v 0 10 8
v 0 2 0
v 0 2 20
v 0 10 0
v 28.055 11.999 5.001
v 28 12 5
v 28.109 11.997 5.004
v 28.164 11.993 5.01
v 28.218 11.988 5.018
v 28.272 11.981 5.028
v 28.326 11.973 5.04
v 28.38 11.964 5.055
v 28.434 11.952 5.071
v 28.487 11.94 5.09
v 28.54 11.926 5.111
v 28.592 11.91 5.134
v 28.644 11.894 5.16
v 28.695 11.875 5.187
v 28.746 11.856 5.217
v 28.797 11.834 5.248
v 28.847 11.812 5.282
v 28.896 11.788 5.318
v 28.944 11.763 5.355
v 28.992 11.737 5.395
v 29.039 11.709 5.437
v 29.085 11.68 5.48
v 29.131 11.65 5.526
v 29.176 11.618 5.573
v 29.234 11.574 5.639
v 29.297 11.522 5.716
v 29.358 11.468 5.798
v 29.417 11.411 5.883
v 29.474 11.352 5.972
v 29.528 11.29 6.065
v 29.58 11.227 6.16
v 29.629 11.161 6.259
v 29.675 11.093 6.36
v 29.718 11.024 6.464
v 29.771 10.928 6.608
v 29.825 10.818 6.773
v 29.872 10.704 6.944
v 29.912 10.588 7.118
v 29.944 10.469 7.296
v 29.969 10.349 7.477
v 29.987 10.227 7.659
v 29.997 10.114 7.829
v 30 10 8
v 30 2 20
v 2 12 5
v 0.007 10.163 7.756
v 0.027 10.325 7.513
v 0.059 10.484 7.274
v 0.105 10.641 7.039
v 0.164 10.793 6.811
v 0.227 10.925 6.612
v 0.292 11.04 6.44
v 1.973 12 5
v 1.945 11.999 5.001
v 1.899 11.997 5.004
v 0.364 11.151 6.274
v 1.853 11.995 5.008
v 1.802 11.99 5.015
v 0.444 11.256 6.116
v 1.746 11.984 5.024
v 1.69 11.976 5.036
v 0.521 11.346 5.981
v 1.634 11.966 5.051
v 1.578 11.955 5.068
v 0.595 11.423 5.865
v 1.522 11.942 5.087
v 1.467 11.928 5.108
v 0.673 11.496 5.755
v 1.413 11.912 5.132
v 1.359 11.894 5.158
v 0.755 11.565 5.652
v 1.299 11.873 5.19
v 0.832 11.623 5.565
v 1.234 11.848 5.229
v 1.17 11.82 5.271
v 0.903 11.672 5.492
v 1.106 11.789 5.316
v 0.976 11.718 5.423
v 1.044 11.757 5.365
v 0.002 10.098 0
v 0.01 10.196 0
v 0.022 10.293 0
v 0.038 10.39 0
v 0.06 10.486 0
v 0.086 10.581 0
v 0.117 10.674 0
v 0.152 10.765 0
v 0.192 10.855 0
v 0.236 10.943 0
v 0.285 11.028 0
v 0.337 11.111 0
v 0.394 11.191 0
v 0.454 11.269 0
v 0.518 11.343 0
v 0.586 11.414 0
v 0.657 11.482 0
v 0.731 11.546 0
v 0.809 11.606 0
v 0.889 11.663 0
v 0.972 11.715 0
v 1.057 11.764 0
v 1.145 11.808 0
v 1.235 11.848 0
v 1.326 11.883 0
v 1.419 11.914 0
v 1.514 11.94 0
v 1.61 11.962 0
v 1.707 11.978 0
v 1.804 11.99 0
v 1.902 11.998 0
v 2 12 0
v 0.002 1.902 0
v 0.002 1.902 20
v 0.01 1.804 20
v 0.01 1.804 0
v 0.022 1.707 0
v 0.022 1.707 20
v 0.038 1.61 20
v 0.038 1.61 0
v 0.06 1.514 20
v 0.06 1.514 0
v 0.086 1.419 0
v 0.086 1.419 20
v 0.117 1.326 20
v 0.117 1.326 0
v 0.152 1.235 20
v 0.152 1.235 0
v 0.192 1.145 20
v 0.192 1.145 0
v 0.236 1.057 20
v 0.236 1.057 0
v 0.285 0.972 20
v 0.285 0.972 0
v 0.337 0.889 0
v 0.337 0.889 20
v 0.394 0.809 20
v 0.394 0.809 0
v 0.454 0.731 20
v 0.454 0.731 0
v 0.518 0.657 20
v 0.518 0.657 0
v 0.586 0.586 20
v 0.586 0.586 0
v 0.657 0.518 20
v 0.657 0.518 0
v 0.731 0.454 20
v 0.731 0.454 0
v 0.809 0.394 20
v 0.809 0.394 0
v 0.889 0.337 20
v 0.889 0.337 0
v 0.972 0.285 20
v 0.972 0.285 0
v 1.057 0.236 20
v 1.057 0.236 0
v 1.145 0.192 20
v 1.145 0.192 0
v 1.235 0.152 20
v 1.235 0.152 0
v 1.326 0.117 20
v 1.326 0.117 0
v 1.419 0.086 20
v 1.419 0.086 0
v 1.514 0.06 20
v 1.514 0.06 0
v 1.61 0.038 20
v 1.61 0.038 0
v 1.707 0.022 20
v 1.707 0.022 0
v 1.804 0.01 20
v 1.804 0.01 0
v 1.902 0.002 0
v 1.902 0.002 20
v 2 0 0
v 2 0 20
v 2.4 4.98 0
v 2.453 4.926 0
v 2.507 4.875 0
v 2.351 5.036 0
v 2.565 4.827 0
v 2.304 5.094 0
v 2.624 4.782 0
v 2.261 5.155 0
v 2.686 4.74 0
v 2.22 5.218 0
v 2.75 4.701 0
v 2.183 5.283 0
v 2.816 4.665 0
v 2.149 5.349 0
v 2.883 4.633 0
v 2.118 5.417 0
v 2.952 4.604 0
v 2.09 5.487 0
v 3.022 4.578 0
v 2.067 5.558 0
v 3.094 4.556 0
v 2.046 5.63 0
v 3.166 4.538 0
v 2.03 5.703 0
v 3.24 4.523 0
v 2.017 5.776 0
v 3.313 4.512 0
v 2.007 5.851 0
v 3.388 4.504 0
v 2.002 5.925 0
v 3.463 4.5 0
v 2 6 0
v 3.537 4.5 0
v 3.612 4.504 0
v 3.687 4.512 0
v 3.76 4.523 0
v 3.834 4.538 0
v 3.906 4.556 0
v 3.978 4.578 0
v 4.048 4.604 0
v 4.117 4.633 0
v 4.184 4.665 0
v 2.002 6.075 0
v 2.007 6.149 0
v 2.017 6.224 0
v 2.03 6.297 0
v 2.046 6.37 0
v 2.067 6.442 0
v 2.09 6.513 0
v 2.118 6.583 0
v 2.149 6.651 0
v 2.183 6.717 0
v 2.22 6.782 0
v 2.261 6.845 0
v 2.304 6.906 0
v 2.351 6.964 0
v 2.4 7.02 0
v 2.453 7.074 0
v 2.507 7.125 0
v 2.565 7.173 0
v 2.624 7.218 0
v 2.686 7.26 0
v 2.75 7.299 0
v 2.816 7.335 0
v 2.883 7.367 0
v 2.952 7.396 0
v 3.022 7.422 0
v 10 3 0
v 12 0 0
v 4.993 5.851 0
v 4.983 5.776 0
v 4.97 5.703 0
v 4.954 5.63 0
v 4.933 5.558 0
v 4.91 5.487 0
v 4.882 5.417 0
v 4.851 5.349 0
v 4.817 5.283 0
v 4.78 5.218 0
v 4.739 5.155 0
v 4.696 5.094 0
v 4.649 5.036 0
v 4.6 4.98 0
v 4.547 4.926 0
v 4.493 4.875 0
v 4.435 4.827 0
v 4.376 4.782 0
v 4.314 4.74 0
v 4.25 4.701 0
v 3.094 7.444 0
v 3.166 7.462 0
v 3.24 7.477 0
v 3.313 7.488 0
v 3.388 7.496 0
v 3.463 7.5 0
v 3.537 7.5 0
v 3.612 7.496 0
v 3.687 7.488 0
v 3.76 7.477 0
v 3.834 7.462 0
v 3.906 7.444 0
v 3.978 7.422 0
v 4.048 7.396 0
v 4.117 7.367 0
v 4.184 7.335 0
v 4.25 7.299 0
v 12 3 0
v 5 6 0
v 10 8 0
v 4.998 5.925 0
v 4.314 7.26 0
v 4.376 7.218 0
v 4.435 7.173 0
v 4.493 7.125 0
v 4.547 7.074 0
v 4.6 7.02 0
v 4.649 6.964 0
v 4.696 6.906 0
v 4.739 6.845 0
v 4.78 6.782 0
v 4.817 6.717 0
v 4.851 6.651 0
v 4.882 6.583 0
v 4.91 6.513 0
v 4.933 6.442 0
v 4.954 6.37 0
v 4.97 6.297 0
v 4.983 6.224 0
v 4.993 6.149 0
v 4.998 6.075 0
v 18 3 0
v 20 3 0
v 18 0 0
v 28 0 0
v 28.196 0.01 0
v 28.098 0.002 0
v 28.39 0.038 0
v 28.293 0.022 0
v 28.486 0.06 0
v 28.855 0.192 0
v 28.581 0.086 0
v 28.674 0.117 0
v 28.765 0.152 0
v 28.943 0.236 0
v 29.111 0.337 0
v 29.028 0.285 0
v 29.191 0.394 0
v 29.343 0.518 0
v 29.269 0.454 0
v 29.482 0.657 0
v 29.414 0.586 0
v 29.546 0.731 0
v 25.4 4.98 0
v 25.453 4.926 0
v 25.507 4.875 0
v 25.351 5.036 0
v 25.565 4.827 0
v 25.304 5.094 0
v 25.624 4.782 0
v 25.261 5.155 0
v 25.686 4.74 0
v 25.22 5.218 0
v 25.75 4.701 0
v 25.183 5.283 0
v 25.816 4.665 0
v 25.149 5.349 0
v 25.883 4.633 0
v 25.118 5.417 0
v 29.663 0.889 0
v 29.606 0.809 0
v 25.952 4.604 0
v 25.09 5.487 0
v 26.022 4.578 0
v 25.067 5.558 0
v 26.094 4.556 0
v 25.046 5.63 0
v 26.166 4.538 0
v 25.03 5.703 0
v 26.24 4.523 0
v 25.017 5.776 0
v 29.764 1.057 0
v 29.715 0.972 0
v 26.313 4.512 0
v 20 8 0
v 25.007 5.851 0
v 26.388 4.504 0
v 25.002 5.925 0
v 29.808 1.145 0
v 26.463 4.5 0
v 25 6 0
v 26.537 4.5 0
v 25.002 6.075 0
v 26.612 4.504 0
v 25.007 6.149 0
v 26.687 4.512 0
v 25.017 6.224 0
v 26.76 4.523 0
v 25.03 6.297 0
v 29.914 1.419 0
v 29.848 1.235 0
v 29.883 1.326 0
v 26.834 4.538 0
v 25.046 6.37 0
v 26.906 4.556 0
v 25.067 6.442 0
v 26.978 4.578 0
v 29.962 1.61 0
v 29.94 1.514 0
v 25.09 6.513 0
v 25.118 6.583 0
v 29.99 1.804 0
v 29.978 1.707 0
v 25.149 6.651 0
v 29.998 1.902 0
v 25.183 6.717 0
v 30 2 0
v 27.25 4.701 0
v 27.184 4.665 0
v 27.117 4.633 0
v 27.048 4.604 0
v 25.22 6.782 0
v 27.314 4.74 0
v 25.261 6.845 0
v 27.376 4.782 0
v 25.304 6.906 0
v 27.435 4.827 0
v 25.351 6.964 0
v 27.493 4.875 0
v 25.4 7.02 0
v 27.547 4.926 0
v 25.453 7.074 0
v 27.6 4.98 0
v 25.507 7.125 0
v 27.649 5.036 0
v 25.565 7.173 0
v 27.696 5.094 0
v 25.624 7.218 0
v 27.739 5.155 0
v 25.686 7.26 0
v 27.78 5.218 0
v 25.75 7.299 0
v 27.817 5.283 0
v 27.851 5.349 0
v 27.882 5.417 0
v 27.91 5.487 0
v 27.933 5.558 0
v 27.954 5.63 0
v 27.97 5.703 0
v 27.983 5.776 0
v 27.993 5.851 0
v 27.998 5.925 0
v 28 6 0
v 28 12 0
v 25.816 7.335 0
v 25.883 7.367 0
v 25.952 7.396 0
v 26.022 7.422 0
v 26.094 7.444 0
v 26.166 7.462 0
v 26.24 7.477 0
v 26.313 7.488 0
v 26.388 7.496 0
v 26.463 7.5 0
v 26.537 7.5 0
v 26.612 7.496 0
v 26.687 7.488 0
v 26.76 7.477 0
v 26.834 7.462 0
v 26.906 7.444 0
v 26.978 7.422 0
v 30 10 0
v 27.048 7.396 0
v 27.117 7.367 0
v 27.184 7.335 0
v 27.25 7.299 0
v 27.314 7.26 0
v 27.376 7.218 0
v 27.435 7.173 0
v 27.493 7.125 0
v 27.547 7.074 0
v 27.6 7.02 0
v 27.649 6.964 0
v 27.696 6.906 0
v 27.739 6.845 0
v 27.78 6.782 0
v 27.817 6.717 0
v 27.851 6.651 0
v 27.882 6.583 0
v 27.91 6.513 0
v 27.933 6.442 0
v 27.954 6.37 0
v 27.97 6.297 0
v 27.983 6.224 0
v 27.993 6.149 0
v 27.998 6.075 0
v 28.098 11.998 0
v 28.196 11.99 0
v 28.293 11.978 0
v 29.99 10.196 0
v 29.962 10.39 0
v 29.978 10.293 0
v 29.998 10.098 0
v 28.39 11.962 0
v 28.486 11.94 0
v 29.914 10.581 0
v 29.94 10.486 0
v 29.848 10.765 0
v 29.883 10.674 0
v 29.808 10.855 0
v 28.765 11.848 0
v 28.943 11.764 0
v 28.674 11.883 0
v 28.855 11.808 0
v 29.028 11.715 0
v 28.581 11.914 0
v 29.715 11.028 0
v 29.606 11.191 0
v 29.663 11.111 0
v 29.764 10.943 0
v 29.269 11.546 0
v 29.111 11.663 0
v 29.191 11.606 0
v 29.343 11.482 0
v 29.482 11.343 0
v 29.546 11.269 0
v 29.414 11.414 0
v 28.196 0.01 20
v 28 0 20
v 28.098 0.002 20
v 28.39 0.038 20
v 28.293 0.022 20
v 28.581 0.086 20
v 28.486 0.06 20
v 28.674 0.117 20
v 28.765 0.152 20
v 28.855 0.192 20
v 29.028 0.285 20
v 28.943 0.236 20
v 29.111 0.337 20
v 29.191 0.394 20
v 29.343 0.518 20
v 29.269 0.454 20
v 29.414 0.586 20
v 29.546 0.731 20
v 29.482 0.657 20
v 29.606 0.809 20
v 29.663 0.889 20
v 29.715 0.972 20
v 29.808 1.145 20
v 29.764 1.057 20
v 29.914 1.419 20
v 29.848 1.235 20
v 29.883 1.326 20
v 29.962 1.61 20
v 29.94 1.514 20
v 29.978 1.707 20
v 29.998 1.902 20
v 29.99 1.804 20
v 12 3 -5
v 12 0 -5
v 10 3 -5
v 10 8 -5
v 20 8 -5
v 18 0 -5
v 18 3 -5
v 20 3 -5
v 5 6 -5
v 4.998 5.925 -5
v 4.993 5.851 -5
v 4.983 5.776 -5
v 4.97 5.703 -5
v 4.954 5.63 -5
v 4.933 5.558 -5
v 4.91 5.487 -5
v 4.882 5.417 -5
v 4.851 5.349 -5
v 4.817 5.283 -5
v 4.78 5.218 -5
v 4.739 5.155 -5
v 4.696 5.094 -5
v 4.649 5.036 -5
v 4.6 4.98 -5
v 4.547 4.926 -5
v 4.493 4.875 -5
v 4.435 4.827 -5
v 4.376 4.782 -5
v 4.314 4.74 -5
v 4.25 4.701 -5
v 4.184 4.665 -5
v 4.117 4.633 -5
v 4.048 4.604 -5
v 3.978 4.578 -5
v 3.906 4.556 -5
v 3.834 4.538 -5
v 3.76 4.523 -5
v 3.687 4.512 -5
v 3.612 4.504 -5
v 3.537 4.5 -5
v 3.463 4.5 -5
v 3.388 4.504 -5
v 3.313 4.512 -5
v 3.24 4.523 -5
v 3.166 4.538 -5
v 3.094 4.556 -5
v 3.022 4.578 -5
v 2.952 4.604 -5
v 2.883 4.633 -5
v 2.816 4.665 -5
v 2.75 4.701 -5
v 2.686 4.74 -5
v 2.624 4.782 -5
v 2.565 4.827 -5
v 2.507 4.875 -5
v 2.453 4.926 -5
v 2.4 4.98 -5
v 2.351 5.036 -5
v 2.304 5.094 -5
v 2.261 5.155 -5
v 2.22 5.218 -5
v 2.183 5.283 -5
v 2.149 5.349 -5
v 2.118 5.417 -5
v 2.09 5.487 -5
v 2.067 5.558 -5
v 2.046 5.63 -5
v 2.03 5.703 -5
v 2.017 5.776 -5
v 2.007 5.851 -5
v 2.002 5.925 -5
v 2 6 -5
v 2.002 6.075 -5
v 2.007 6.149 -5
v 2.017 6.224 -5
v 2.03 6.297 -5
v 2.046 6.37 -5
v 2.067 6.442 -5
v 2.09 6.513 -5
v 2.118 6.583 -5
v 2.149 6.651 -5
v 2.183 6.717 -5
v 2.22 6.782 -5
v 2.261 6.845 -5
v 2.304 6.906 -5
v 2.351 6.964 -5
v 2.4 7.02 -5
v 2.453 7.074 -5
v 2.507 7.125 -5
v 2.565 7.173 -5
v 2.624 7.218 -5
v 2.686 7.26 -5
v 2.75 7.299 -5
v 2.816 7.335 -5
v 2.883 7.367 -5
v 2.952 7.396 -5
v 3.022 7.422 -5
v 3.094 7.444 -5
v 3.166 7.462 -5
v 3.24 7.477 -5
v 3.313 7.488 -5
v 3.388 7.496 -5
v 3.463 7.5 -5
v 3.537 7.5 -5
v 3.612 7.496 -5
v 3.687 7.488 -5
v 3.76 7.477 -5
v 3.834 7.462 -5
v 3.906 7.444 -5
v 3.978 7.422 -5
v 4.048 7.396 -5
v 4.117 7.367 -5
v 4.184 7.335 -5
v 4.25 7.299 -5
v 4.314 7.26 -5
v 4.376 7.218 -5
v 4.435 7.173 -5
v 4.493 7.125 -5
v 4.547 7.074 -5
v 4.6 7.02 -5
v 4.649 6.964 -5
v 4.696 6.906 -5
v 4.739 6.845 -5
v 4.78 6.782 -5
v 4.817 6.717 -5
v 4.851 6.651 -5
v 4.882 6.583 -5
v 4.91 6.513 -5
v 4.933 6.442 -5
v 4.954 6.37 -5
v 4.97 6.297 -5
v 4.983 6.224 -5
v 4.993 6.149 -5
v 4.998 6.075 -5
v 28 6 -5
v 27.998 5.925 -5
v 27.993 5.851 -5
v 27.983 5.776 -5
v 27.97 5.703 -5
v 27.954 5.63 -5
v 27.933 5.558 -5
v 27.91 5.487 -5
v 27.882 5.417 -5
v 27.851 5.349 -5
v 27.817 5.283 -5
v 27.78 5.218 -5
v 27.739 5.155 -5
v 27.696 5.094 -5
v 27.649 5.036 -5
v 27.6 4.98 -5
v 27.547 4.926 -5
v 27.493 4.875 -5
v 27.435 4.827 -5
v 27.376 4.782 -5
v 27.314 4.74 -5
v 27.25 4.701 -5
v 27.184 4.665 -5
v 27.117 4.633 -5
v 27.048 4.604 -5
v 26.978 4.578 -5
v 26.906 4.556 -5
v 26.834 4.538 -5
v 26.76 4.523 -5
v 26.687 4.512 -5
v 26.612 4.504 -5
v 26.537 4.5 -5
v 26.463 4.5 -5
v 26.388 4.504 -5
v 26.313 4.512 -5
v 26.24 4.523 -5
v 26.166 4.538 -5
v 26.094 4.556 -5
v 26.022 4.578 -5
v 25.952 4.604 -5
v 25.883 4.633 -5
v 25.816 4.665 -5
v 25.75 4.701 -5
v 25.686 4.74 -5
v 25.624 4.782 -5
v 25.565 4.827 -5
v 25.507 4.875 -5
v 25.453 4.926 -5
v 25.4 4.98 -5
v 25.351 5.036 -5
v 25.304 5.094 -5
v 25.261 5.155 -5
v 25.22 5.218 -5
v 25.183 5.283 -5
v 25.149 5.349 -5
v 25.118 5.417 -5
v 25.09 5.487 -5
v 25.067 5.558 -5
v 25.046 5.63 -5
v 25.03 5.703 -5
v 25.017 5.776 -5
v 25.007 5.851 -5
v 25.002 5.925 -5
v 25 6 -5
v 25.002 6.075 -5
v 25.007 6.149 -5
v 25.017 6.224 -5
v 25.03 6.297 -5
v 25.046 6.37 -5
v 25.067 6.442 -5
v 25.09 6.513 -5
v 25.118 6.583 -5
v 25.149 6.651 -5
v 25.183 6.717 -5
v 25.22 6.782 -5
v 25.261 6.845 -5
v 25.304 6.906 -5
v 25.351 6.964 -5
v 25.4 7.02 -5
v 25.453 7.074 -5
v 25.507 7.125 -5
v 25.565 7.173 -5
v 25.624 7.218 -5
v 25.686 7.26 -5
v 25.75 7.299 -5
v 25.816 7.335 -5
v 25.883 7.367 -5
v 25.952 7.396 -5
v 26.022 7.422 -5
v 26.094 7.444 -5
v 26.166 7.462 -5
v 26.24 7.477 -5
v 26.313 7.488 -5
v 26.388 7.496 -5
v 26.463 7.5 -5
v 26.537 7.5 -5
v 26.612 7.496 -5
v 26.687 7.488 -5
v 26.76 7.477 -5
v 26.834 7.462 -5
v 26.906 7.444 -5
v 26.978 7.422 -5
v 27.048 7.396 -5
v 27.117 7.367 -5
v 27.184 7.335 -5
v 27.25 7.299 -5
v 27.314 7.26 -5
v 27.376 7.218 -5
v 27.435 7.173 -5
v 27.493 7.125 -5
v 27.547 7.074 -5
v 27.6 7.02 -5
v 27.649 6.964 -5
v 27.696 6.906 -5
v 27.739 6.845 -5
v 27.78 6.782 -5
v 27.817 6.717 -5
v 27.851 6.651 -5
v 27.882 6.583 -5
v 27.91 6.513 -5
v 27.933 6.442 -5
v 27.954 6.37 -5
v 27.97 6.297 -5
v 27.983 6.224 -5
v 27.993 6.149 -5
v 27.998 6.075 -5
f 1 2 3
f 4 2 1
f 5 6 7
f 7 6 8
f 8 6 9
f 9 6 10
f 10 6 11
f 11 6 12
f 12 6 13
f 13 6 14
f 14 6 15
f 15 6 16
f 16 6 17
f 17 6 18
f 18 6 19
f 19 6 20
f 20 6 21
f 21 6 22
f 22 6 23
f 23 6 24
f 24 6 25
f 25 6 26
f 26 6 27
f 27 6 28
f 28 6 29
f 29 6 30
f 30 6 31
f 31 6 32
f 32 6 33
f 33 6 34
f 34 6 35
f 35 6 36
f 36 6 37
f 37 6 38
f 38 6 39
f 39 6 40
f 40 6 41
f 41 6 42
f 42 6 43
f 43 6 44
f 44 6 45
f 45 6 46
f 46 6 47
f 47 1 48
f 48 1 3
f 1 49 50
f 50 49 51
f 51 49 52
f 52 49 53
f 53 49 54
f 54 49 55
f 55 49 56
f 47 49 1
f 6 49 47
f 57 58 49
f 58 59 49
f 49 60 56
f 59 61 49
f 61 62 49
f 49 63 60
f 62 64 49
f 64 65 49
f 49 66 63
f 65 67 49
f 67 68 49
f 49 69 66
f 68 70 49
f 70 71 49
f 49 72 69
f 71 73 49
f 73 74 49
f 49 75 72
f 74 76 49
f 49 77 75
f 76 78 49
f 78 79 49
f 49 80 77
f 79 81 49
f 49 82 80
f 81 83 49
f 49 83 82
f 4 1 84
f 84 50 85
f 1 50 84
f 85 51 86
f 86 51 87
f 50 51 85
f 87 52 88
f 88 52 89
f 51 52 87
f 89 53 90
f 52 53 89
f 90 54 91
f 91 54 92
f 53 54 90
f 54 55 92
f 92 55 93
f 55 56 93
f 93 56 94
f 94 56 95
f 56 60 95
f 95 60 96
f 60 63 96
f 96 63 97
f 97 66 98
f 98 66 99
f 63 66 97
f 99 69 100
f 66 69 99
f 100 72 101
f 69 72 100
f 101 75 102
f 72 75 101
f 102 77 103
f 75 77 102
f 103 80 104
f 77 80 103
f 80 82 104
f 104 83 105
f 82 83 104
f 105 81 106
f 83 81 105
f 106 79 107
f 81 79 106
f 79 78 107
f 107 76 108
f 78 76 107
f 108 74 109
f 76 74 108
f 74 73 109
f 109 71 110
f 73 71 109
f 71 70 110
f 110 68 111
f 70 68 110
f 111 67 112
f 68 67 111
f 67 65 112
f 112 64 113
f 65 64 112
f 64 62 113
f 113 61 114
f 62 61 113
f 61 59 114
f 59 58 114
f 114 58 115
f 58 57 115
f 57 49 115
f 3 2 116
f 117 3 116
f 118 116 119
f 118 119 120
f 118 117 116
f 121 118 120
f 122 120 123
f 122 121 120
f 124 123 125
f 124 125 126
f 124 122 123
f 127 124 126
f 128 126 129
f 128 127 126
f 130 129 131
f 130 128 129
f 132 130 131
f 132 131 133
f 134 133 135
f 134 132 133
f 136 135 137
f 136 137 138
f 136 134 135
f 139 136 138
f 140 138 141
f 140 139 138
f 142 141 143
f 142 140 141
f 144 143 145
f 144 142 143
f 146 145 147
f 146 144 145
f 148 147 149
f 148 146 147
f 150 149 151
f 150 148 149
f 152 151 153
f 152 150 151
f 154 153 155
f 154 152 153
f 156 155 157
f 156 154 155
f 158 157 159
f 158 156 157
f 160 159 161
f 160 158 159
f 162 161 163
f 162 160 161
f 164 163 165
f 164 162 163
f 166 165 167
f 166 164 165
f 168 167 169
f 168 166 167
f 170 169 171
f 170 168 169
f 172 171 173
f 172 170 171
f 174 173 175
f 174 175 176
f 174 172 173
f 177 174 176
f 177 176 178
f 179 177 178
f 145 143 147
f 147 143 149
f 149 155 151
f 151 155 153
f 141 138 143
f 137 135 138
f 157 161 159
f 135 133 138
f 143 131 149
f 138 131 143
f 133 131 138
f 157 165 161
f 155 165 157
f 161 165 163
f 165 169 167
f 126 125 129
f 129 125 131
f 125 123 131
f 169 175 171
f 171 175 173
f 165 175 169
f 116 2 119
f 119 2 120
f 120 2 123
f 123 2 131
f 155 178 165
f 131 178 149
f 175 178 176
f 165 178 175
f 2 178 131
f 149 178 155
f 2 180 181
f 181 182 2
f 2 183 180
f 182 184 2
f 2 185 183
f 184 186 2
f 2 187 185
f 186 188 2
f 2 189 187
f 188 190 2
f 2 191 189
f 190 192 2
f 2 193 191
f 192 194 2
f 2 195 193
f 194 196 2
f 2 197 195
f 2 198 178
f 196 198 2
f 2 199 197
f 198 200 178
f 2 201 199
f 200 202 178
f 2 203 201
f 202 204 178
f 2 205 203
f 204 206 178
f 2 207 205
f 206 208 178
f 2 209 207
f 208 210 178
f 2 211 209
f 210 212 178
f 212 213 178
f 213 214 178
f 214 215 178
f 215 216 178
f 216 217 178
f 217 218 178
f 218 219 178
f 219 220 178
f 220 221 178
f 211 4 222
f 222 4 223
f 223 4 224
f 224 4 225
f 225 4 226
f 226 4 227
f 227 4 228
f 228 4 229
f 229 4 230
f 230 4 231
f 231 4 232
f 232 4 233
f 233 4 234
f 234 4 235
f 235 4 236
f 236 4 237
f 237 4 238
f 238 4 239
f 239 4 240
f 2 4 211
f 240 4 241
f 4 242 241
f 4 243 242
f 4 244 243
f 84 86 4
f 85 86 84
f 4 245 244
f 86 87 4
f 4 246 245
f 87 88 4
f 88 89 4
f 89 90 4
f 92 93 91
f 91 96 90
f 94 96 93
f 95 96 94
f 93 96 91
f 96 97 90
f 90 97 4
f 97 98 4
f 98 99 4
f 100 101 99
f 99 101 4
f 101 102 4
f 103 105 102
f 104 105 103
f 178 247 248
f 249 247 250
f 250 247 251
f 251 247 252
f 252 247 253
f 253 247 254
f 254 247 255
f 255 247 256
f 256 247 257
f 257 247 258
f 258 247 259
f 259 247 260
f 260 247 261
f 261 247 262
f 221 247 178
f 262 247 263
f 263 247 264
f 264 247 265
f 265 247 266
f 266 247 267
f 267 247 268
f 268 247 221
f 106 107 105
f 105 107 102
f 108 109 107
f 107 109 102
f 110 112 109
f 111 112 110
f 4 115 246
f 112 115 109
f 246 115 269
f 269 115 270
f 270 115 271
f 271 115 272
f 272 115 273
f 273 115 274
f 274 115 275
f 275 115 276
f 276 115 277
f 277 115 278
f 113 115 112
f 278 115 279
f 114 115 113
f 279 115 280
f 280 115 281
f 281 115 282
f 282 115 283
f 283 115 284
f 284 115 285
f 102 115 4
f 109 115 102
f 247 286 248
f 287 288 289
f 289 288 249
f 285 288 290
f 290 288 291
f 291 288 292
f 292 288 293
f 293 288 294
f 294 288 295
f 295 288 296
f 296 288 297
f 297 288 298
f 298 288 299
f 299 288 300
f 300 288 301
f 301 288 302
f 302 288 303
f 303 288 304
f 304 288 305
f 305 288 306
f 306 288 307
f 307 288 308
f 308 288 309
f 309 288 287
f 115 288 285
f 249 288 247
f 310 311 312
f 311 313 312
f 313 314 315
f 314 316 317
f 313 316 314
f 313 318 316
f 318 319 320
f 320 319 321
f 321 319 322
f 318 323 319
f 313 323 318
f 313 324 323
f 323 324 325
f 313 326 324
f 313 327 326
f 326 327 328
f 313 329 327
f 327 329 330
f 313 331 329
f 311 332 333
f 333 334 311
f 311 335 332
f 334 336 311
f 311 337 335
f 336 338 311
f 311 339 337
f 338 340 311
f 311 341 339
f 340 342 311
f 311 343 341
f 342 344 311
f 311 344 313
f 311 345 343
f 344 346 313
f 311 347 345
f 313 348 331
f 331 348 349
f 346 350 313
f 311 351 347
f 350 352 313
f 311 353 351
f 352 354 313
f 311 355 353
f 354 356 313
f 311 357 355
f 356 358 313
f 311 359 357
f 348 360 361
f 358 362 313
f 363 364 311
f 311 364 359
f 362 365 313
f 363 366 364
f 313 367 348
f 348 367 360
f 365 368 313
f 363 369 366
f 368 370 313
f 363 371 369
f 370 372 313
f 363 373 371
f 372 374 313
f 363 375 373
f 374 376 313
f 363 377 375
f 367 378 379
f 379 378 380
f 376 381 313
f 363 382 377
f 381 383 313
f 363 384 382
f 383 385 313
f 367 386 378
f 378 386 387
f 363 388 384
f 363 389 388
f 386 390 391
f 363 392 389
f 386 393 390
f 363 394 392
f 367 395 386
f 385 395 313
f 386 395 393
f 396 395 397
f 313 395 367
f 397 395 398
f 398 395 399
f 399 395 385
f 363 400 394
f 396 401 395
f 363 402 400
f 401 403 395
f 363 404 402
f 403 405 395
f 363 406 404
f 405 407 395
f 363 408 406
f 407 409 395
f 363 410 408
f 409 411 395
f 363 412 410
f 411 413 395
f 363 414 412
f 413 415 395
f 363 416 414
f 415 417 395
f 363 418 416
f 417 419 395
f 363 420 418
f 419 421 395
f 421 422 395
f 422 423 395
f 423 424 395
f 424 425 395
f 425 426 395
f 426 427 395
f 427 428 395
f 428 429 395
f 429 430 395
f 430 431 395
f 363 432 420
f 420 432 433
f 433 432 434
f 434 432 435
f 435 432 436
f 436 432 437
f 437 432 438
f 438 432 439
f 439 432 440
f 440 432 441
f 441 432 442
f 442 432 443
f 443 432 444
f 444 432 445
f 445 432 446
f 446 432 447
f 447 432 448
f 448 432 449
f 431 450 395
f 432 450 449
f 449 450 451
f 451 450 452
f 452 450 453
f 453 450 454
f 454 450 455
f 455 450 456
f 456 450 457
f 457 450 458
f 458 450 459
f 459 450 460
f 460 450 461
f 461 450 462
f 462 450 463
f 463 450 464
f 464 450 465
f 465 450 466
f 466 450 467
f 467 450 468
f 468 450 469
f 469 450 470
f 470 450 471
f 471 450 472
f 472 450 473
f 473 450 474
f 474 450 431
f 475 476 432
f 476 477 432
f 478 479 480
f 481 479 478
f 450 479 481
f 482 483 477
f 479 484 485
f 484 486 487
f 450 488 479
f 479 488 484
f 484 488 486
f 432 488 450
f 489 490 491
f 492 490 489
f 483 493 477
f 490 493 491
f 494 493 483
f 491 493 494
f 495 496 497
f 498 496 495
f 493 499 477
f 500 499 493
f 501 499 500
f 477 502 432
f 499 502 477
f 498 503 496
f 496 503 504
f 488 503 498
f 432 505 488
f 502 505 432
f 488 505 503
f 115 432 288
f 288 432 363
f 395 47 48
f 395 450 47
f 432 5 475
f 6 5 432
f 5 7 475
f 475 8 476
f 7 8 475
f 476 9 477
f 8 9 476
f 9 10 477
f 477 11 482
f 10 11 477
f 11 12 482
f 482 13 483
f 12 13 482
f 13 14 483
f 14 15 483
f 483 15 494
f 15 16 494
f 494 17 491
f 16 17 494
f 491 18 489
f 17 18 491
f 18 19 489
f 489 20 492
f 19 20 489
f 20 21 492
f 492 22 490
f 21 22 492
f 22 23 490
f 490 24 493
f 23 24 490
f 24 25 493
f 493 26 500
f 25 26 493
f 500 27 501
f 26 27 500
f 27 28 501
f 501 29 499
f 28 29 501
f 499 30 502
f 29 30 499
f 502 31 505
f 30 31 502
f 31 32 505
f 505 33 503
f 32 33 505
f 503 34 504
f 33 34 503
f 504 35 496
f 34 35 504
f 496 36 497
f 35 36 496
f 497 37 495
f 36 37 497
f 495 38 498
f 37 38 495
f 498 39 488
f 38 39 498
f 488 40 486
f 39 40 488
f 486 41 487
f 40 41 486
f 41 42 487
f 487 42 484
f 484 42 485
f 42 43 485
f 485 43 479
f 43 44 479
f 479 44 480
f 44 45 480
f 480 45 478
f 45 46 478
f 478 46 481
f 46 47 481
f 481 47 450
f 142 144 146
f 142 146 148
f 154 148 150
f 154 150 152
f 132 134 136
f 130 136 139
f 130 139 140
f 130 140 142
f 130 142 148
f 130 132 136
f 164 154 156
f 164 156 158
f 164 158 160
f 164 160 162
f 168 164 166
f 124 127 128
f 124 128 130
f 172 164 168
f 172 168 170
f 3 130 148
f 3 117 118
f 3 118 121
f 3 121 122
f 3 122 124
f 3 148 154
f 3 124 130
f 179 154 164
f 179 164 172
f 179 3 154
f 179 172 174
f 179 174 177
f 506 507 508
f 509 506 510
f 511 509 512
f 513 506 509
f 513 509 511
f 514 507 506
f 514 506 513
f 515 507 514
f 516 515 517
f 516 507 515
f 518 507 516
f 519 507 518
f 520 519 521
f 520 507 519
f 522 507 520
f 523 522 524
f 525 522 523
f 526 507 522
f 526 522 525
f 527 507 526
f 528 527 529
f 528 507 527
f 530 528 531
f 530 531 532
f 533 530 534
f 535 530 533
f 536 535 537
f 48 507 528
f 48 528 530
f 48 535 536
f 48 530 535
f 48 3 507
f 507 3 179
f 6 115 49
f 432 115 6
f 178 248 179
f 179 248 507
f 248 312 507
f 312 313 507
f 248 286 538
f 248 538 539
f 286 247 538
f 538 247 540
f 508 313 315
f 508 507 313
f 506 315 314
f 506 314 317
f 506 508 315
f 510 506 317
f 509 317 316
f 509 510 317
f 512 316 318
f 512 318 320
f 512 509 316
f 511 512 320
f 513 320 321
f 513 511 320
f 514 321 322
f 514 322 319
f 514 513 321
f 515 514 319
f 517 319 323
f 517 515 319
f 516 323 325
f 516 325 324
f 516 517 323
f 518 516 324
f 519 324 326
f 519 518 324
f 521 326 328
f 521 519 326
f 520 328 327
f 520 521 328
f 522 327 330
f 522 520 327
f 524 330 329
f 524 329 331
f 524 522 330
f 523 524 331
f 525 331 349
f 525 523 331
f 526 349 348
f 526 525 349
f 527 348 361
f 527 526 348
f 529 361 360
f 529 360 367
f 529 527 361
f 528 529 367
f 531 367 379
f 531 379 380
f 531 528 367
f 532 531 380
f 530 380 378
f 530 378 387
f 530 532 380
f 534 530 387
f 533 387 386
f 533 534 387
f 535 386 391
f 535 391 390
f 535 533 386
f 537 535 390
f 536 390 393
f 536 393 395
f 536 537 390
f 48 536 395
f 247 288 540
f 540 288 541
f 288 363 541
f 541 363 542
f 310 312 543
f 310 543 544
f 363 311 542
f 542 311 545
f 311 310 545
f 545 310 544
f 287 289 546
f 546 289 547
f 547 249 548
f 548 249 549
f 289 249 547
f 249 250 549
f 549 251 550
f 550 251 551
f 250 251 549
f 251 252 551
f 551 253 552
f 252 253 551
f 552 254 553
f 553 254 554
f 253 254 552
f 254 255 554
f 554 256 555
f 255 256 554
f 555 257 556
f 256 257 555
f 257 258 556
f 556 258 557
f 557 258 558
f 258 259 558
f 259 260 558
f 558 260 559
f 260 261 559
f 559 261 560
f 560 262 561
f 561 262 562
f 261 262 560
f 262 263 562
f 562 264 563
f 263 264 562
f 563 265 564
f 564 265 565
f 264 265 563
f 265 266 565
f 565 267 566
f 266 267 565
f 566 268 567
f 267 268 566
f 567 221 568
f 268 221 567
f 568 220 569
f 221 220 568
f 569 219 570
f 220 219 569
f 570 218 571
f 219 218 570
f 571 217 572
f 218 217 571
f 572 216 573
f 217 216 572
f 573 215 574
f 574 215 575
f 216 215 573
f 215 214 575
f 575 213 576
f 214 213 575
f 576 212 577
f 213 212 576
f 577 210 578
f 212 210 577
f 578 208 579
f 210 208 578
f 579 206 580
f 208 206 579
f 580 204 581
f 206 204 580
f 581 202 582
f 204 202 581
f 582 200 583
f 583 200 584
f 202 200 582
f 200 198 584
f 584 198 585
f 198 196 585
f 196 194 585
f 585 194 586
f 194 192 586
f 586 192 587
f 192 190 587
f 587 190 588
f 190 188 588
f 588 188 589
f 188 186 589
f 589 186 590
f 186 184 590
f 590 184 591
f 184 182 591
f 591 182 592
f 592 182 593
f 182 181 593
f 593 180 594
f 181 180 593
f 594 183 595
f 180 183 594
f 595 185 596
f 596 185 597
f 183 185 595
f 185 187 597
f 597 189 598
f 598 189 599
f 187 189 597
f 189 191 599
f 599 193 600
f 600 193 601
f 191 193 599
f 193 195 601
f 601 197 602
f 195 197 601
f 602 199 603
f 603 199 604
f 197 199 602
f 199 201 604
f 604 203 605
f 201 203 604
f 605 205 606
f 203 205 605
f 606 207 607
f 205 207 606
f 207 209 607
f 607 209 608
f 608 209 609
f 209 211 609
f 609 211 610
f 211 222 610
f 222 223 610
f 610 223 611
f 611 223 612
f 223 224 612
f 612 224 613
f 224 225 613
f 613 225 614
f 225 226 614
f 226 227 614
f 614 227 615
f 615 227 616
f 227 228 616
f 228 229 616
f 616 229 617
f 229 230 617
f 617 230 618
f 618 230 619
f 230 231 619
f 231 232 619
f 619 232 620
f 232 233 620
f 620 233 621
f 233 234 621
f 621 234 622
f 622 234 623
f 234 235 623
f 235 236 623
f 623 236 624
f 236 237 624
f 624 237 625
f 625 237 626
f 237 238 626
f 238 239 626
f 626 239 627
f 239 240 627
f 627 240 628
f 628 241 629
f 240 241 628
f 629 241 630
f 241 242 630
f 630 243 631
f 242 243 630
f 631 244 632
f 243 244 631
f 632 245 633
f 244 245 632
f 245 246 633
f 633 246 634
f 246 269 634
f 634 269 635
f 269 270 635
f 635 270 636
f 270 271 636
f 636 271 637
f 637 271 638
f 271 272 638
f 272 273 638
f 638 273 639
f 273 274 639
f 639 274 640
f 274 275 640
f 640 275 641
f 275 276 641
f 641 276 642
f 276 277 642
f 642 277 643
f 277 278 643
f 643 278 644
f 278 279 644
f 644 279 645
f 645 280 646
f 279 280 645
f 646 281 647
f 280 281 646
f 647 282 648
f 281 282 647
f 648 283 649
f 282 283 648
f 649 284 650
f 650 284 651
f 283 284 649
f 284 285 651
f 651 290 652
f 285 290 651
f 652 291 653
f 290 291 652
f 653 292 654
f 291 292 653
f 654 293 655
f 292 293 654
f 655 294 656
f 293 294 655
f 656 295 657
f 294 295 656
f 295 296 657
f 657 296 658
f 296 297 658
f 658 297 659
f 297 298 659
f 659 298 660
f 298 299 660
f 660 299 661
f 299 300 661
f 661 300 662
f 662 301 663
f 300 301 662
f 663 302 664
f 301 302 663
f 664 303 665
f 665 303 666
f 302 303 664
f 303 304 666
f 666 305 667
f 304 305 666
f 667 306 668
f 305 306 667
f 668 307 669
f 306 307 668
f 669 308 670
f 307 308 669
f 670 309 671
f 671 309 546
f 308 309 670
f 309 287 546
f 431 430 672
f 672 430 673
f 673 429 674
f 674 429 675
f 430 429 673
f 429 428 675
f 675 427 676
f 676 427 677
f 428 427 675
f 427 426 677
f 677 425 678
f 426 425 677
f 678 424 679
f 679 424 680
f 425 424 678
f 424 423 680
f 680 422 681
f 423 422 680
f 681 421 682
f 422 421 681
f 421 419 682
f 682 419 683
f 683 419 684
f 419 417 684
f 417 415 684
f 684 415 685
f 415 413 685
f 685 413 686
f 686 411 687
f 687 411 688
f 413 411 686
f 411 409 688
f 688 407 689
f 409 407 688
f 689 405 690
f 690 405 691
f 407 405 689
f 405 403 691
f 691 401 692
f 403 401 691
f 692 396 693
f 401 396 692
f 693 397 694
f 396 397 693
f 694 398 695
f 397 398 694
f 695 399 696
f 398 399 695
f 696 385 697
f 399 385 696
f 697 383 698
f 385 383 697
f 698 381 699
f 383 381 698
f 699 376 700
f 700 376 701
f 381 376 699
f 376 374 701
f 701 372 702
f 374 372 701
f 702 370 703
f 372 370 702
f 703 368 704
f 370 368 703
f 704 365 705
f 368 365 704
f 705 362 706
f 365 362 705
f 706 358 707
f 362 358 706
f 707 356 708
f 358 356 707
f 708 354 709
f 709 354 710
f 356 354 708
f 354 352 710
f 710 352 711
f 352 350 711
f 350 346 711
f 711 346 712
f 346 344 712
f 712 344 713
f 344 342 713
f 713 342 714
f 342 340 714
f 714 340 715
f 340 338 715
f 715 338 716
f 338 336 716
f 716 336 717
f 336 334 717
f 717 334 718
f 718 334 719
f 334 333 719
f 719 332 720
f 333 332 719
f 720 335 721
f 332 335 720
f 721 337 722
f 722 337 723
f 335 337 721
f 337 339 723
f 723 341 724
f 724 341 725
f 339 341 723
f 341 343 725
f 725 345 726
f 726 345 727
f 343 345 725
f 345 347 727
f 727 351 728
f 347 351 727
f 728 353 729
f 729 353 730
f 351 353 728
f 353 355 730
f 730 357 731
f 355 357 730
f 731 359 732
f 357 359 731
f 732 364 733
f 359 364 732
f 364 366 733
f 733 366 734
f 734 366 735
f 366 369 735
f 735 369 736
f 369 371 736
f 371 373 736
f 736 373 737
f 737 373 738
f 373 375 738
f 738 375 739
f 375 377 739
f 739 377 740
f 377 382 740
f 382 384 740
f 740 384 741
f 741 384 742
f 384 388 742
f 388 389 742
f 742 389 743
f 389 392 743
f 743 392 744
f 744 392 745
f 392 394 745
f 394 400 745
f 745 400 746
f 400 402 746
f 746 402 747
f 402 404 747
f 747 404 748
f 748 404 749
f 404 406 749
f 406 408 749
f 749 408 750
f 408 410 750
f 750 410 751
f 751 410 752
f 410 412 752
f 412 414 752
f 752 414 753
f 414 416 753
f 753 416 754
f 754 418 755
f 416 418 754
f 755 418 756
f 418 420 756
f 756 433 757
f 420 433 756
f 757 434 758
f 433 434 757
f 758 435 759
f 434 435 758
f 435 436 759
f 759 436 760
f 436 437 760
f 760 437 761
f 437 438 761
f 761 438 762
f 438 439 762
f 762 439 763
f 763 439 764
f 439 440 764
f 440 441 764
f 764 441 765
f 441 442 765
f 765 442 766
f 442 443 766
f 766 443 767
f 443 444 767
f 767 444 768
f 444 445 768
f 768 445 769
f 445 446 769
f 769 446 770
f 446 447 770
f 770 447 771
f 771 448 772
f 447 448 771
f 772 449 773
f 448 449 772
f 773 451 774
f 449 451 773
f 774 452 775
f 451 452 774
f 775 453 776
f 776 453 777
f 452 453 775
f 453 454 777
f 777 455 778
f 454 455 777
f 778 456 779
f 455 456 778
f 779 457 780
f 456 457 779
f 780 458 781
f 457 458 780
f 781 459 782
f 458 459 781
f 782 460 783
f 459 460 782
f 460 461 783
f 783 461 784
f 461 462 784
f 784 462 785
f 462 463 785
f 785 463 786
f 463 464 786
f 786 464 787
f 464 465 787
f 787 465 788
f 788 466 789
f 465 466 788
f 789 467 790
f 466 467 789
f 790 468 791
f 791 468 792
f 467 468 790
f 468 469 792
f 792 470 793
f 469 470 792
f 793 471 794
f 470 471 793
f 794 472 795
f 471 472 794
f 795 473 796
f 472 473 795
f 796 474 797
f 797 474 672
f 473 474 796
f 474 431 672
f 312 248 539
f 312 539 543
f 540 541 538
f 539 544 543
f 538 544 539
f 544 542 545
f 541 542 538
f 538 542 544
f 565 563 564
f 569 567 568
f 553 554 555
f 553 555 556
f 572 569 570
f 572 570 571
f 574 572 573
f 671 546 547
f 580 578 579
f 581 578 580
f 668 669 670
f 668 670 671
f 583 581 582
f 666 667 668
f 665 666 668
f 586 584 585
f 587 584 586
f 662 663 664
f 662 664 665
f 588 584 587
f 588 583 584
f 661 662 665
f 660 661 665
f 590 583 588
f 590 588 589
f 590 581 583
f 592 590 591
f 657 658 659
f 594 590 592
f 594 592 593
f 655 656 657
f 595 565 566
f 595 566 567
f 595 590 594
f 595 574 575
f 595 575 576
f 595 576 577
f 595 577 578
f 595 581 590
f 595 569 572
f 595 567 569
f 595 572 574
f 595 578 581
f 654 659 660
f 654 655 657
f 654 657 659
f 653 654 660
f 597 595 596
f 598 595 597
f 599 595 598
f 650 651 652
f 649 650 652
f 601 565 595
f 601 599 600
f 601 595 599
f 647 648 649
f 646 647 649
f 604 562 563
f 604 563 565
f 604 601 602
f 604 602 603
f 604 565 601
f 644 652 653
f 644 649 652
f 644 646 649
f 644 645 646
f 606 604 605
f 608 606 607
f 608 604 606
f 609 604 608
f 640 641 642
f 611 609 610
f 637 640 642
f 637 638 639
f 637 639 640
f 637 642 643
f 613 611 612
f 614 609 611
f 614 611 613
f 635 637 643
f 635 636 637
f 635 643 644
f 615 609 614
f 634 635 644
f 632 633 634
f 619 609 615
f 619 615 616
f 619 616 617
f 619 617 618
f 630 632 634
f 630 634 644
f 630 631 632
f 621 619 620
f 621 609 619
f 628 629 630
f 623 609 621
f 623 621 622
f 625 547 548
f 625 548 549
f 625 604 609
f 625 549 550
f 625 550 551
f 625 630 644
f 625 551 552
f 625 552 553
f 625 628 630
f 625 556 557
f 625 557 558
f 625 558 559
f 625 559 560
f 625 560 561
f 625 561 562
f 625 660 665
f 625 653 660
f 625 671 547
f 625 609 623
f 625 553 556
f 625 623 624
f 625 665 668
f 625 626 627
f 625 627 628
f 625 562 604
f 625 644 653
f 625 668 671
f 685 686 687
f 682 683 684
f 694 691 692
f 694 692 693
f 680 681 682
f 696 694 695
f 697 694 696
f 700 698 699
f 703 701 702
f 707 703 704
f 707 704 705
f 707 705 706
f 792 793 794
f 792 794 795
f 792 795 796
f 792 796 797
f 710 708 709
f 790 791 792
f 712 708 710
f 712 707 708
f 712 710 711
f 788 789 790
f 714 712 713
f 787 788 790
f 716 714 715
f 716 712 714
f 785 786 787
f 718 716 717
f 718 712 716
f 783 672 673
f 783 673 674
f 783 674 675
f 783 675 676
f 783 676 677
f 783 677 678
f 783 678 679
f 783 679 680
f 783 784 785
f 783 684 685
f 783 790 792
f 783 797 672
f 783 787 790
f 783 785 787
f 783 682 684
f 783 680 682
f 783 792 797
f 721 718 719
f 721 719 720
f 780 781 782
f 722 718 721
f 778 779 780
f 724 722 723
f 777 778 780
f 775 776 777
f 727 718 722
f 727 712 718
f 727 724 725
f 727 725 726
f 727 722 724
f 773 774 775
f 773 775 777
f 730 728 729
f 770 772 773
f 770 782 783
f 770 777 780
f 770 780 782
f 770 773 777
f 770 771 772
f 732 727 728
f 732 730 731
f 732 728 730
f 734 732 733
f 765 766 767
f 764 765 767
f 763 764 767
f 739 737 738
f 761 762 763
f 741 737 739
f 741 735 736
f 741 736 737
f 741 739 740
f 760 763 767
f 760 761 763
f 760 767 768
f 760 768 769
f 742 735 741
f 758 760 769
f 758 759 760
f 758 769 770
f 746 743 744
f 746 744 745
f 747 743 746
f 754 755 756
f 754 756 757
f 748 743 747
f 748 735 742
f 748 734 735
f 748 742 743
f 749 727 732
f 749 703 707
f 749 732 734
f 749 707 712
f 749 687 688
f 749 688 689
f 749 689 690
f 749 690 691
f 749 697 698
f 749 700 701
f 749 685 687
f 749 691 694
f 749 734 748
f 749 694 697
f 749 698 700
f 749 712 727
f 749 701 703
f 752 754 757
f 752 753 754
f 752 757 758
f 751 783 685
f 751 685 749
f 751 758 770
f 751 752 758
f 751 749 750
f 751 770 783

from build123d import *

# Parameters (mm, degrees)
SKETCH_W      = 30
SKETCH_H      = 12
PAD_DEPTH     = 20
PAD001_DEPTH  = 5
SKETCH002_R   = 1.5
PAD002_DEPTH  = 5
CHAMFER_SIZE2 = 15
CHAMFER_SIZE  = 10
FILLET_R      = 2


with BuildPart() as part:
    # Sketch → Pad (new body)
    with BuildSketch(Plane.XY):
        with Locations((15, 6)):
            Rectangle(SKETCH_W, SKETCH_H)
    extrude(amount=PAD_DEPTH)

    # Sketch001 (on Face5 of Pad) → Pad001 (join)
    with BuildSketch(Plane(origin=(0, 0, 0), x_dir=(1, 0, 0), z_dir=(0, 0, -1))):
        Polygon((12, 0), (18, 0), (18, -3), (20, -3), (20, -8), (10, -8), (10, -3), (12, -3), align=None)
    extrude(amount=PAD001_DEPTH)

    # Sketch002 (on Face4 of Pad001) → Pad002 (join)
    with BuildSketch(Plane(origin=(0, 0, 0), x_dir=(1, 0, 0), z_dir=(0, 0, -1))):
        with Locations((3.5, -6)):
            Circle(SKETCH002_R)
        with Locations((26.5, -6)):
            Circle(SKETCH002_R)
    extrude(amount=PAD002_DEPTH)

    # Chamfer
    chamfer_edges = [part.edges().sort_by_distance(p)[0] for p in [
        (15, 12, 20),
    ]]
    chamfer_side = part.faces().sort_by_distance((15, 6, 20))[0]
    chamfer(chamfer_edges, length=CHAMFER_SIZE, length2=CHAMFER_SIZE2, reference=chamfer_side)

    # Fillet
    fillet_edges = [part.edges().sort_by_distance(p)[0] for p in [
        (0, 12, 2.5),
        (0, 0, 10),
        (30, 12, 2.5),
        (30, 0, 10),
    ]]
    fillet(fillet_edges, radius=FILLET_R)


solid = part.part
